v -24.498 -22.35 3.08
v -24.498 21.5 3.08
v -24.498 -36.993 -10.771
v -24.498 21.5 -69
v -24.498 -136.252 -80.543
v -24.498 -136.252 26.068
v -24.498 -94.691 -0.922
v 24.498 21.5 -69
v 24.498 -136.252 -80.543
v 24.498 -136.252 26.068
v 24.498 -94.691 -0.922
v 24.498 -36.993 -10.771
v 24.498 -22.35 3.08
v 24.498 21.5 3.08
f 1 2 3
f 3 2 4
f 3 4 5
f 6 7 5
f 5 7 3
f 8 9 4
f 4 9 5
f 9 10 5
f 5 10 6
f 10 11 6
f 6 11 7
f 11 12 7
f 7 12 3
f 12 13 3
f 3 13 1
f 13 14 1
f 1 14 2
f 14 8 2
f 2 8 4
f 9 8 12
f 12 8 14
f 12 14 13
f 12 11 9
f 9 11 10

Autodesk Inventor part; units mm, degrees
ref_plane "XZ Plane" through (0, 0, 0) normal (0, 1, 0) x (-1, 0, 0)
sketch "Sketch1" plane through (0, 0, 0) normal (1, 0, 0) x (0, 1, 0)
  line L0 (-136.2516, 26.0681) -> (-94.6911, -0.9217)
  line L1 (-94.6911, -0.9217) -> (-36.9927, -10.7705)
  line L2 (-36.9927, -10.7705) -> (-22.35, 3.08)
  line L3 (-22.35, 3.08) -> (21.5, 3.08)
  line L4 (21.5, 3.08) -> (21.5, -69)
  line L5 (21.5, -69) -> (-136.2516, -80.5428)
  line L6 (-136.2516, -80.5428) -> (-136.2516, 26.0681)
  line L7 (-20.328, 3.08) -> (15.75, 3.08)
  line L8 (21.5, 2) -> (21.5, -10)
  line L9 (-36.9927, -10.7705) -> (-23.8189, 1.6905)
  line L10 (-136.2516, -70.0311) -> (-136.2516, 7.0311)
  line L11 (-120.3625, 15.7495) -> (-94.6911, -0.9217)
  point P0 (0, 0)
  point P1 (-136.2516, 7.0311)
  dimension "d0" = 46.592
  dimension "d1" = 94.185
  dimension "d2" = 99.687
  dimension "d3" = 57
  dimension "d4" = 157.7516
  dimension "d5" = 21.5
  dimension "d6" = 3.08
  dimension "d7" = 17.5961
  dimension "d8" = 70.385
  dimension "d9" = 16.8414
  dimension "d10" = 52.3454
  dimension "d11" = 1.08
  dimension "d12" = 13.08
  dimension "d13" = 5.75
  dimension "d14" = 41.828
  dimension "d15" = 45.3189
  dimension "d16" = 141.8624
  dimension "d17" = 3.9511
  dimension "d18" = 73.1111
extrude "Extrusion1" add sketch "Sketch1" along normal mid plane 48.9966
properties part number "BaseBoundingBox"
